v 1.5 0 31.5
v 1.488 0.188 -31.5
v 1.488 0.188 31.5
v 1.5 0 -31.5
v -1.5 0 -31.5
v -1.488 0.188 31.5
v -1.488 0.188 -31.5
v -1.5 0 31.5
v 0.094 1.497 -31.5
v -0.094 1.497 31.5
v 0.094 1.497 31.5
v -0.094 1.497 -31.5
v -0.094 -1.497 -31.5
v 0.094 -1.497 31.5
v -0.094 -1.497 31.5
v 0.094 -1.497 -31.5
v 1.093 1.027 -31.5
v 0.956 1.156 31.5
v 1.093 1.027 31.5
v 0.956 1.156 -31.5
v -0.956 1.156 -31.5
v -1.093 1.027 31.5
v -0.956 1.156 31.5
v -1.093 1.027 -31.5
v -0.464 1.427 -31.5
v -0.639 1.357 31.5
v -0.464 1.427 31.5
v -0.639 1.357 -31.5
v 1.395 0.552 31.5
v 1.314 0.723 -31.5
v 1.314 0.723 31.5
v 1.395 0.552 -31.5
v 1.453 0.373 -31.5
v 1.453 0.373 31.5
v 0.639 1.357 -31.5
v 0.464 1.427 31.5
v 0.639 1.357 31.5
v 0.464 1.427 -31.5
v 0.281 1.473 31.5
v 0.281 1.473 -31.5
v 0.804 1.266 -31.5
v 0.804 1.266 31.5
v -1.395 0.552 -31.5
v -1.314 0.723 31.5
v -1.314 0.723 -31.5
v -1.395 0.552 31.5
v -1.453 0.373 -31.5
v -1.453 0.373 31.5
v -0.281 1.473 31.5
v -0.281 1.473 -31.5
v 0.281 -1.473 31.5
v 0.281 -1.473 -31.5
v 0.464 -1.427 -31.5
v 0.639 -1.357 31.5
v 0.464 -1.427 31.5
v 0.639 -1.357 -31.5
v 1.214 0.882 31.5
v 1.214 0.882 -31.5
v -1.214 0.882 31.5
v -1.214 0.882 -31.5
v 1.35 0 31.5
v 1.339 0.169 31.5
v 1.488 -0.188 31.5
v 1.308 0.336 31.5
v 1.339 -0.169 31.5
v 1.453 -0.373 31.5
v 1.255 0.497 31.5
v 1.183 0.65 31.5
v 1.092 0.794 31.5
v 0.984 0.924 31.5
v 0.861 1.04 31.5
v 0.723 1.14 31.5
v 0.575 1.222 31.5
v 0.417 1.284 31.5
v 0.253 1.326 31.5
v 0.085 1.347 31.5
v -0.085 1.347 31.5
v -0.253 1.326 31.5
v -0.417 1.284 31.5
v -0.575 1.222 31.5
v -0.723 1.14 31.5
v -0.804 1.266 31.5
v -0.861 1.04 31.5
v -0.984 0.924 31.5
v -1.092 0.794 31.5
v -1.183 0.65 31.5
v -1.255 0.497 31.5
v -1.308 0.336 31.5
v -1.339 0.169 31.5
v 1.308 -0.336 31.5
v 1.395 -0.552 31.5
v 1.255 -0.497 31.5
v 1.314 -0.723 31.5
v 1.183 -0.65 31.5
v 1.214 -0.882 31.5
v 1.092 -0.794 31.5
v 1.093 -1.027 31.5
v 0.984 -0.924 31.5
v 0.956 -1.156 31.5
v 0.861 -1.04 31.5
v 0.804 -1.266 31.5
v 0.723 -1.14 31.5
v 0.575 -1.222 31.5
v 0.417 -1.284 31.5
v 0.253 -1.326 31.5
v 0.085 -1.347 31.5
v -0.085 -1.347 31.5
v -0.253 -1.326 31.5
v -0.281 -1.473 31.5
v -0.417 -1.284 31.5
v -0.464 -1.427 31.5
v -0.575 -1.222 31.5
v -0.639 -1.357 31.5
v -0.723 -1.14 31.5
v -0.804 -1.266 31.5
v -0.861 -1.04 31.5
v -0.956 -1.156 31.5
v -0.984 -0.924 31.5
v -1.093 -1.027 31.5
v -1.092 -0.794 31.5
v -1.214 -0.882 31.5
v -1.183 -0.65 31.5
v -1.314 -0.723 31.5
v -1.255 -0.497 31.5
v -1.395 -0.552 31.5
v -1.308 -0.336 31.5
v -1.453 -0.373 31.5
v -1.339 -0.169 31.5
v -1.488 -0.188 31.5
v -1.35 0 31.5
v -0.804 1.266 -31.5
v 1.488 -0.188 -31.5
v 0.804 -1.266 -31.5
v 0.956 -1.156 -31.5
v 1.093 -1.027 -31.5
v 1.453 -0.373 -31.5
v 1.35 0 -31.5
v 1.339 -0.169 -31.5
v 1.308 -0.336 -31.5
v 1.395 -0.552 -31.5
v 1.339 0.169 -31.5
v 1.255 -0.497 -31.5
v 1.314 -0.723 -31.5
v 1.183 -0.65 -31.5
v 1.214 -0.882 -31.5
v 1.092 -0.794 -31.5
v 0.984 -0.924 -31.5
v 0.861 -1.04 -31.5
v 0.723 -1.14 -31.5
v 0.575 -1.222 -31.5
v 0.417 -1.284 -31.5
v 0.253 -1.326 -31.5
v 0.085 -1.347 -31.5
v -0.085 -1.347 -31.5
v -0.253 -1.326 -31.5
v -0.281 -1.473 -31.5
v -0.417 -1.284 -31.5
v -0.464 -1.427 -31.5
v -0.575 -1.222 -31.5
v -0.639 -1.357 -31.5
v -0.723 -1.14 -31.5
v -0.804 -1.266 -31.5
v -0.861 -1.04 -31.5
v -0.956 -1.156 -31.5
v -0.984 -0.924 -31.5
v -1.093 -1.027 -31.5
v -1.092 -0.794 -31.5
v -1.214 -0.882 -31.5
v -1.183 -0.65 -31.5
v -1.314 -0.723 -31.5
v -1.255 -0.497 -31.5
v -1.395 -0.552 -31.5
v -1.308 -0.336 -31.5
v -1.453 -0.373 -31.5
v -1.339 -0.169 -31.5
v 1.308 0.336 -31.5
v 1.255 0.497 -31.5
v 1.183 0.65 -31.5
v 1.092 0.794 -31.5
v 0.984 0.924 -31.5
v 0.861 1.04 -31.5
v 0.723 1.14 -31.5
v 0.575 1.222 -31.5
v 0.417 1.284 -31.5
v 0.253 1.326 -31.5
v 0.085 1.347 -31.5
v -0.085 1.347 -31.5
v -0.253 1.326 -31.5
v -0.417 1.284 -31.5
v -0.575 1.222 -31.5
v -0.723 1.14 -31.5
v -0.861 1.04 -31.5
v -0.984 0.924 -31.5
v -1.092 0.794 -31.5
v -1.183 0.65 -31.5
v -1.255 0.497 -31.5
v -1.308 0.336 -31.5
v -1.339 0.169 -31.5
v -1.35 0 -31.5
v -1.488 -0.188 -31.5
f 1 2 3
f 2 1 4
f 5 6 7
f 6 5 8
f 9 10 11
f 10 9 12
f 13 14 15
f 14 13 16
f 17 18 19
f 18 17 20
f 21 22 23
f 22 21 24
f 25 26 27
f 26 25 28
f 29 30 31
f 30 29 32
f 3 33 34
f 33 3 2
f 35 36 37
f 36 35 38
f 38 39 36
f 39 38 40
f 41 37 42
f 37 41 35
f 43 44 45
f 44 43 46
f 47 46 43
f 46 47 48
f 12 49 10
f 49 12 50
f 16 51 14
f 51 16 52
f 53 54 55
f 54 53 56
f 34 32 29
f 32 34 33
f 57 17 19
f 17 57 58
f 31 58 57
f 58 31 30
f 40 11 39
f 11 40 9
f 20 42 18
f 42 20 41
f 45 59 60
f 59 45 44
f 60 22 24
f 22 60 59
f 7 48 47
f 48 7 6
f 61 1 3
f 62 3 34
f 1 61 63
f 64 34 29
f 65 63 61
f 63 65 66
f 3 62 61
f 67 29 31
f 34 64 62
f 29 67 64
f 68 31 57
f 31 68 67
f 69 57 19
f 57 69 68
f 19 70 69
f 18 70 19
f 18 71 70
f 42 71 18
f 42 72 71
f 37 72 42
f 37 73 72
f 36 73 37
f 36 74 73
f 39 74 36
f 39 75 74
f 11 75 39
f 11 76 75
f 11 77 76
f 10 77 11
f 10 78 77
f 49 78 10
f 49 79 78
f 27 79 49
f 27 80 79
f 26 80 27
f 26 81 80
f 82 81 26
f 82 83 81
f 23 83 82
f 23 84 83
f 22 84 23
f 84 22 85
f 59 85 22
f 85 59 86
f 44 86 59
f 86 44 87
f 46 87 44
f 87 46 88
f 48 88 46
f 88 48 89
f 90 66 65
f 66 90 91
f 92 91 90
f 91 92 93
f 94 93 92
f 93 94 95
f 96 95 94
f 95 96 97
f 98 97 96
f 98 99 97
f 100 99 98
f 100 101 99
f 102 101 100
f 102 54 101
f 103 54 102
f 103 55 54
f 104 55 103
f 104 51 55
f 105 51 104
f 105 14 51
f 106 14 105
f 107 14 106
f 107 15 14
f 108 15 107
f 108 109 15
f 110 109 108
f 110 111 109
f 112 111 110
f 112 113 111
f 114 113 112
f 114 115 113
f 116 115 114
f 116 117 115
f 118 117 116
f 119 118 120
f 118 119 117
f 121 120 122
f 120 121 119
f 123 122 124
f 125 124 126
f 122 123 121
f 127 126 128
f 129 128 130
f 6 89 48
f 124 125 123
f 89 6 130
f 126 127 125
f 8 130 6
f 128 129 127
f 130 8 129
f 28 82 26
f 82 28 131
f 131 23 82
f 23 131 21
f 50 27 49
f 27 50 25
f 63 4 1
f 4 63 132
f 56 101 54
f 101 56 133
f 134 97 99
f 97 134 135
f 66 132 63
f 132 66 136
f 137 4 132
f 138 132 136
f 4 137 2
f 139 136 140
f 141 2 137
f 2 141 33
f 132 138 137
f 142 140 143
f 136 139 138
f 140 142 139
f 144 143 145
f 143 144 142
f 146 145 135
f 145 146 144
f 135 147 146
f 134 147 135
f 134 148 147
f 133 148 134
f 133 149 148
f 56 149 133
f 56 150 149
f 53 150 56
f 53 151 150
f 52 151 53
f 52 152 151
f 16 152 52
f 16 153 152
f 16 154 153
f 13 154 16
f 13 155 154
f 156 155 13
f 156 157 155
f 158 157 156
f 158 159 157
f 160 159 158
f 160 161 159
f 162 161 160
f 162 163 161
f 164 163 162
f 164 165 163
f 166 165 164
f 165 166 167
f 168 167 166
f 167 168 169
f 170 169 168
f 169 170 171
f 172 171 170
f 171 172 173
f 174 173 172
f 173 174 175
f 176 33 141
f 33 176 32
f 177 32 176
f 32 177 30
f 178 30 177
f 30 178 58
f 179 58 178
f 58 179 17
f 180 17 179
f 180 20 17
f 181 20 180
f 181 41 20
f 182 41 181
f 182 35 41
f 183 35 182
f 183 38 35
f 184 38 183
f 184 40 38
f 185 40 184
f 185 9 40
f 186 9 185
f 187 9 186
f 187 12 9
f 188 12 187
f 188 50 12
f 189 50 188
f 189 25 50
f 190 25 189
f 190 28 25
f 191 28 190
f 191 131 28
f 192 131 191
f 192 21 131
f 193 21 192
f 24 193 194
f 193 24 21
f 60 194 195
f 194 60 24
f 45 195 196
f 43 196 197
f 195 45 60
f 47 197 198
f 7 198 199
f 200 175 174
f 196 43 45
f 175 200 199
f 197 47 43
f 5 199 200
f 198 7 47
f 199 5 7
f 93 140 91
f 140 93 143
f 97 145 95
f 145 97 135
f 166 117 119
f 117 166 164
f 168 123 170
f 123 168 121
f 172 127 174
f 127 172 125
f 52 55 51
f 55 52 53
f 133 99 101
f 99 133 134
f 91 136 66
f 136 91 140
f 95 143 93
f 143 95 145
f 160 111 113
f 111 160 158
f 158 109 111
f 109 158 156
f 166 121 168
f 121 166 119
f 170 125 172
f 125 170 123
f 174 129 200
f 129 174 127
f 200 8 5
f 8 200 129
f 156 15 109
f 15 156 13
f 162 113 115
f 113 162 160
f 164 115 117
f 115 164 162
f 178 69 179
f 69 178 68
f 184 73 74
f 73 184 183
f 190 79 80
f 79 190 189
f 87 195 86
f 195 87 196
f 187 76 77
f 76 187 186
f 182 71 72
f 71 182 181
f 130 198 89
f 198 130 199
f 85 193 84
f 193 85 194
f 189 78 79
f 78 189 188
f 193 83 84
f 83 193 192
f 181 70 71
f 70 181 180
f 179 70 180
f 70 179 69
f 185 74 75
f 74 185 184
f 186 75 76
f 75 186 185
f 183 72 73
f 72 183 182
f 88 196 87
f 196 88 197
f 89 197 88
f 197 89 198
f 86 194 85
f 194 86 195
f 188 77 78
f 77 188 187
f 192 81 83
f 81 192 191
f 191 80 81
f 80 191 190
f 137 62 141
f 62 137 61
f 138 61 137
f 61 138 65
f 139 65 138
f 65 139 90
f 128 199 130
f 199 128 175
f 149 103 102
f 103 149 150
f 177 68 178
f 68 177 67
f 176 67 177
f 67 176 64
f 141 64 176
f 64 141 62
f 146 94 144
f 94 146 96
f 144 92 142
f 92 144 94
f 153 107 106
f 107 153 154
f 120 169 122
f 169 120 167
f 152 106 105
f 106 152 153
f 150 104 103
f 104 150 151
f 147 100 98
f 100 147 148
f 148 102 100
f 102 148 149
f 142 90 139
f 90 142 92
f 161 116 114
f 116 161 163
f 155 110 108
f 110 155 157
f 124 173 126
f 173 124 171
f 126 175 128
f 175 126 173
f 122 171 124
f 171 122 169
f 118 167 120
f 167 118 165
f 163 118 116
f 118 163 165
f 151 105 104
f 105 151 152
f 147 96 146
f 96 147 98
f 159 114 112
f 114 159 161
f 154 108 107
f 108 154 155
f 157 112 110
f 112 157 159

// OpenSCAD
$fn = 50;


difference() {
	union() {
		translate(v = [0, 0, -31.5000000000]) {
			cylinder(h = 63, r = 1.5000000000);
		}
	}
	union() {
		translate(v = [0, 0, -100.0000000000]) {
			cylinder(h = 200, r = 1.3500000000);
		}
	}
}
